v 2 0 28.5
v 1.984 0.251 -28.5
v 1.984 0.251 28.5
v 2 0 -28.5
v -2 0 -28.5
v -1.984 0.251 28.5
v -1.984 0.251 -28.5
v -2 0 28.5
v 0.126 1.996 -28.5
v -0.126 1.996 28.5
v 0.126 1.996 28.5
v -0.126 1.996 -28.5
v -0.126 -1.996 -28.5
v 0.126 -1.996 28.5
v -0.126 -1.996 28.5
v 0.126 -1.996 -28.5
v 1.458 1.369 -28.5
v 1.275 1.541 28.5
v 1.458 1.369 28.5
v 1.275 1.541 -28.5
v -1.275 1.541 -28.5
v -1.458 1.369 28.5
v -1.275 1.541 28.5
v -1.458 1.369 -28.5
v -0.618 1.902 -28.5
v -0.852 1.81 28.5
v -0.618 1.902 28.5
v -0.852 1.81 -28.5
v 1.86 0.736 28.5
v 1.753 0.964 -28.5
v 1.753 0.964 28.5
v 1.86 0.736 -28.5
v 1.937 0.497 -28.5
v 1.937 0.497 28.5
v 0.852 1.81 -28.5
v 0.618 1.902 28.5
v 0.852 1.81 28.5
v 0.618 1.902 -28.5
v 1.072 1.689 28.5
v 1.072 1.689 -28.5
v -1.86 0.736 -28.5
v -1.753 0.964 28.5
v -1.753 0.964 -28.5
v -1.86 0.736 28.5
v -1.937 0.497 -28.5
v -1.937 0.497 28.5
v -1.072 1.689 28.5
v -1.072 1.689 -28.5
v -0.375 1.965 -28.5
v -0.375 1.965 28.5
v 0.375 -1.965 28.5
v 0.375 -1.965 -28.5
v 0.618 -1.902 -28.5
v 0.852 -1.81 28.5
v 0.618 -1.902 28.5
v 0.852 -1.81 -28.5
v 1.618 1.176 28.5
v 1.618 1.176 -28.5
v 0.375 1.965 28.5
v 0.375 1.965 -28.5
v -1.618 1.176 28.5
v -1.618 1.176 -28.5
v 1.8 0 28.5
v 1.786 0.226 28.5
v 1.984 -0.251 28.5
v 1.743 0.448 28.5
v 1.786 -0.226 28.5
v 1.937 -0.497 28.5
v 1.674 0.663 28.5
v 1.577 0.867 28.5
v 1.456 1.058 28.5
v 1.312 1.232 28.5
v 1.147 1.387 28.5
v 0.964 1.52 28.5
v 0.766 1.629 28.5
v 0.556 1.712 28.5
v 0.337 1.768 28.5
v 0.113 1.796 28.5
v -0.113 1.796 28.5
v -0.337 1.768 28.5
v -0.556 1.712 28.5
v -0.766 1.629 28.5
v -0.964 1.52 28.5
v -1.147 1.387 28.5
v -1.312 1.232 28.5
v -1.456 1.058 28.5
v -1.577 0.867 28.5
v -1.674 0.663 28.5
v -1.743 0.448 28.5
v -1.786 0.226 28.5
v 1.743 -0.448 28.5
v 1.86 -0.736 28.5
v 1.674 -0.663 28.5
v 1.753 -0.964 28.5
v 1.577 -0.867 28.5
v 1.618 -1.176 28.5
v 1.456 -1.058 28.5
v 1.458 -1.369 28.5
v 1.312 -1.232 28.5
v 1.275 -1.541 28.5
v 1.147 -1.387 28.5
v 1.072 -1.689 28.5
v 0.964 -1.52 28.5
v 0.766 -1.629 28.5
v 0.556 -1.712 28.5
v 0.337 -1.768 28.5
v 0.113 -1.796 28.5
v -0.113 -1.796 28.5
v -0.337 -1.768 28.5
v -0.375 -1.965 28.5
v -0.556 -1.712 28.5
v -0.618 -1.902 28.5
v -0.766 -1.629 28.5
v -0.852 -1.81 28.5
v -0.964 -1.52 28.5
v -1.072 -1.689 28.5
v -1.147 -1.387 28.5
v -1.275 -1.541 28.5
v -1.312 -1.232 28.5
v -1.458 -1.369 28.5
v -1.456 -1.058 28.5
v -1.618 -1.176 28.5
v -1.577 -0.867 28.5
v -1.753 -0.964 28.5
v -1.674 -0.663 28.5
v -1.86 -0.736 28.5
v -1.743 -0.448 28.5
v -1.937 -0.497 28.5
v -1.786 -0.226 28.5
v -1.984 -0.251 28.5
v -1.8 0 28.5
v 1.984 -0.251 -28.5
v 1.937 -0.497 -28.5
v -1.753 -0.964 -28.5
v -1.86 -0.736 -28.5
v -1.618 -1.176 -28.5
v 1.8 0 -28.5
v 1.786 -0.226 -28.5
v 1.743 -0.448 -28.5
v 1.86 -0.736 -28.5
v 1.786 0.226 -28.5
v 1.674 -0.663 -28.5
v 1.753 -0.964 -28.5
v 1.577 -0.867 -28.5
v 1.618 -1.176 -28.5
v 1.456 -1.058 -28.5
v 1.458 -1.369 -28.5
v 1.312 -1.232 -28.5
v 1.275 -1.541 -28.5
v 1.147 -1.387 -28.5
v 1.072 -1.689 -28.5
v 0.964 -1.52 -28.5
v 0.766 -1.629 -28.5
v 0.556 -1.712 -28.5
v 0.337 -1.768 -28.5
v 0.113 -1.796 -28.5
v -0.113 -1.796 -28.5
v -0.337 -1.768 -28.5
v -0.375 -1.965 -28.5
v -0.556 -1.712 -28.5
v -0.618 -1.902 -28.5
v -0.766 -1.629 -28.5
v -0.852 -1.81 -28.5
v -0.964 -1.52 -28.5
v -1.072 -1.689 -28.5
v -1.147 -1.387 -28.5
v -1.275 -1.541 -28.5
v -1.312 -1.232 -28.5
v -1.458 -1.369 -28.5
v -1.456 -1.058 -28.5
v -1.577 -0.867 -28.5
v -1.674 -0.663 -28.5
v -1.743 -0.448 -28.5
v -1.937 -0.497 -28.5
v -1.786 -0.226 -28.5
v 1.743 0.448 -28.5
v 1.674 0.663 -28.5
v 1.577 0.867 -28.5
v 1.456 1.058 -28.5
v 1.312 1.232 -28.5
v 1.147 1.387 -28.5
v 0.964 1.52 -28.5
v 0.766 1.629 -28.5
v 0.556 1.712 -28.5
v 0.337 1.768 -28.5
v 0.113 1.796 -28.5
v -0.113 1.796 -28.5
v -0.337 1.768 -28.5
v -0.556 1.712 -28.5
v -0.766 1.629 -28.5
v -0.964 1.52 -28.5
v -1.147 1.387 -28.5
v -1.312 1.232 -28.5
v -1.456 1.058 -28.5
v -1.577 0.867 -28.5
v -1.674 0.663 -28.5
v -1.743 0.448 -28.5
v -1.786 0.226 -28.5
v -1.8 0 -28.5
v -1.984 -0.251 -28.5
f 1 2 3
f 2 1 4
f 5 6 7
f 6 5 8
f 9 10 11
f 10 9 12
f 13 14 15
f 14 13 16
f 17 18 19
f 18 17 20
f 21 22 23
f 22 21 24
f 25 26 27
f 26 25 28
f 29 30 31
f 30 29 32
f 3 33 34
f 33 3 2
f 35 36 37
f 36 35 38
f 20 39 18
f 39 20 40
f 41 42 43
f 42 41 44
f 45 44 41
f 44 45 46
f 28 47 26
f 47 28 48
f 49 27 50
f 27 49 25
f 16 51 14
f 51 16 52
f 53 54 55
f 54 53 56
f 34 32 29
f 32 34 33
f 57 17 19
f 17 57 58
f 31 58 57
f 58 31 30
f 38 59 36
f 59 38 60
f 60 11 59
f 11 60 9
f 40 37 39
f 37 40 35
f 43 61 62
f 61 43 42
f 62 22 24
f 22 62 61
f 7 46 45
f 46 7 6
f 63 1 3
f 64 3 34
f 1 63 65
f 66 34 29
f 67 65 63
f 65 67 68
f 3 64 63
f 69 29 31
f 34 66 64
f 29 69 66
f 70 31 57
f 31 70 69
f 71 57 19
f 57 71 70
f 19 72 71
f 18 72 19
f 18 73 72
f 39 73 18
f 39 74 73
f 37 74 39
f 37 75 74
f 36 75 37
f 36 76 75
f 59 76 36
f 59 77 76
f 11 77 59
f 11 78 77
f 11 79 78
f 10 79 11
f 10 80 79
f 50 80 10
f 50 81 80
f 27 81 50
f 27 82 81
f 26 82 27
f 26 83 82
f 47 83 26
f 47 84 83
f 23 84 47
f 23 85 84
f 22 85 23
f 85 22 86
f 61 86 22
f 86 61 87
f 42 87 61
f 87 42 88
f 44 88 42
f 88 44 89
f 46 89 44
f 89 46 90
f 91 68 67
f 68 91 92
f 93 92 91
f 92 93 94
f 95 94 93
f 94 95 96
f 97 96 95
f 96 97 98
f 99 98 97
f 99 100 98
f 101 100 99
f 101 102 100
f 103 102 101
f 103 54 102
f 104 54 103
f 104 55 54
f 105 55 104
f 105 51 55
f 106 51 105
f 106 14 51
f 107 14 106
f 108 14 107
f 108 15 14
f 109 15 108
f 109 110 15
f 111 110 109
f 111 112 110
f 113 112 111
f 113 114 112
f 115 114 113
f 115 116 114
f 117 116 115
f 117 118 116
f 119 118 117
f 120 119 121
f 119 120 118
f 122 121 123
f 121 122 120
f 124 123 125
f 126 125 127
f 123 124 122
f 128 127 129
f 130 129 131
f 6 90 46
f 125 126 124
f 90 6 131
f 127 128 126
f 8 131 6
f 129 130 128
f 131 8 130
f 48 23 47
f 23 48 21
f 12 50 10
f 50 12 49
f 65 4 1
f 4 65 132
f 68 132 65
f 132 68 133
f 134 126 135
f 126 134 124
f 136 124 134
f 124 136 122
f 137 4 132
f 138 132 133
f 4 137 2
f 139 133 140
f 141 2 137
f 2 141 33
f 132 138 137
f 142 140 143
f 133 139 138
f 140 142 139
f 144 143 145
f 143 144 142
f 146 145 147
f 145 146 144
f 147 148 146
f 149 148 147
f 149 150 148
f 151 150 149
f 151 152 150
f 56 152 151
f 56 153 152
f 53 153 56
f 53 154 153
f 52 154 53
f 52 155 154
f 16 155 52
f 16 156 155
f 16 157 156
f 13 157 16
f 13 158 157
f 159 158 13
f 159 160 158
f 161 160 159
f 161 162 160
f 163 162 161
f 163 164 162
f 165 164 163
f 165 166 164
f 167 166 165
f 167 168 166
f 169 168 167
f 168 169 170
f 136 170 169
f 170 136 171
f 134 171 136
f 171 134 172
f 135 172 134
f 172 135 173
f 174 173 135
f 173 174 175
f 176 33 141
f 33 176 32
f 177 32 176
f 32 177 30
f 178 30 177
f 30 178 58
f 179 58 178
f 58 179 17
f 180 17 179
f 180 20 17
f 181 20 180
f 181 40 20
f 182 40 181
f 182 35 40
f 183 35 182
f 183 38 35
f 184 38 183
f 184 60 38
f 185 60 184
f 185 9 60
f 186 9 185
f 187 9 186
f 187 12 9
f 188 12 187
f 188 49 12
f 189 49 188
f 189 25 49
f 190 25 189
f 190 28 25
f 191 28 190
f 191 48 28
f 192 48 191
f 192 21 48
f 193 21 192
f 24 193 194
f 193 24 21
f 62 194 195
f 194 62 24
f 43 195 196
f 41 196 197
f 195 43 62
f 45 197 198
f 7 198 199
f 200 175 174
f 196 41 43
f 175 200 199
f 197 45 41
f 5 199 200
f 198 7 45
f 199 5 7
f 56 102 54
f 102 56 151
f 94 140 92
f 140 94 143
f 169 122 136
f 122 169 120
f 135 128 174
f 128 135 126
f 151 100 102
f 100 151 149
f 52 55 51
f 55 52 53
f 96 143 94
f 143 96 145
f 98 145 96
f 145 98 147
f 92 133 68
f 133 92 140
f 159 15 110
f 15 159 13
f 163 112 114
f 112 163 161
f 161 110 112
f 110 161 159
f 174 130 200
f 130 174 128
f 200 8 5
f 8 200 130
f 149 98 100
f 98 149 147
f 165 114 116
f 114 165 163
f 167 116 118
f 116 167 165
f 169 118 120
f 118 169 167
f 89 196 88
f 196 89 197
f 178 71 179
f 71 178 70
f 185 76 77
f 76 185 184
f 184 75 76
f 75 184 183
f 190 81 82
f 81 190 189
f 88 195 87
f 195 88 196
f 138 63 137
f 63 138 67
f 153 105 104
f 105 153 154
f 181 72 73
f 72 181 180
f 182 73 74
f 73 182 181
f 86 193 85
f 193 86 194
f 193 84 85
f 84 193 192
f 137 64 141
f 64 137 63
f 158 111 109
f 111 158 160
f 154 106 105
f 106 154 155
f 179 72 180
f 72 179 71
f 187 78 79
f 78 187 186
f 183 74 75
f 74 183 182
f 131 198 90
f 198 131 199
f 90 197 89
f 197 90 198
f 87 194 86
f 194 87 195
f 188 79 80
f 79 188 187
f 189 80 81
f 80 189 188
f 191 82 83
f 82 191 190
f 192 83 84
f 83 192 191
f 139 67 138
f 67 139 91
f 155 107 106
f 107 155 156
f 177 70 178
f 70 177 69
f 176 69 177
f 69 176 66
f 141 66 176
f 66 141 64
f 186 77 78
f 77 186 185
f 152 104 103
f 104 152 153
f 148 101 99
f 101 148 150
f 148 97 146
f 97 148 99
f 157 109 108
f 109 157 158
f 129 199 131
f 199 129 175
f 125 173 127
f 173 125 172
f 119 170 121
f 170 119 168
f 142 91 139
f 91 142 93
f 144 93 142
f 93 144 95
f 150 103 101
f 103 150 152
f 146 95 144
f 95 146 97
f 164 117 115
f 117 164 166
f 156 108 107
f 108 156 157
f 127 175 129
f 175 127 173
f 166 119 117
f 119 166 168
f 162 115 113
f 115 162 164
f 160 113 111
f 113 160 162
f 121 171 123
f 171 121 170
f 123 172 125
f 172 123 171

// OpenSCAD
$fn = 50;


difference() {
	union() {
		translate(v = [0, 0, -28.5000000000]) {
			cylinder(h = 57, r = 2.0000000000);
		}
	}
	union() {
		translate(v = [0, 0, -100.0000000000]) {
			cylinder(h = 200, r = 1.8000000000);
		}
	}
}
